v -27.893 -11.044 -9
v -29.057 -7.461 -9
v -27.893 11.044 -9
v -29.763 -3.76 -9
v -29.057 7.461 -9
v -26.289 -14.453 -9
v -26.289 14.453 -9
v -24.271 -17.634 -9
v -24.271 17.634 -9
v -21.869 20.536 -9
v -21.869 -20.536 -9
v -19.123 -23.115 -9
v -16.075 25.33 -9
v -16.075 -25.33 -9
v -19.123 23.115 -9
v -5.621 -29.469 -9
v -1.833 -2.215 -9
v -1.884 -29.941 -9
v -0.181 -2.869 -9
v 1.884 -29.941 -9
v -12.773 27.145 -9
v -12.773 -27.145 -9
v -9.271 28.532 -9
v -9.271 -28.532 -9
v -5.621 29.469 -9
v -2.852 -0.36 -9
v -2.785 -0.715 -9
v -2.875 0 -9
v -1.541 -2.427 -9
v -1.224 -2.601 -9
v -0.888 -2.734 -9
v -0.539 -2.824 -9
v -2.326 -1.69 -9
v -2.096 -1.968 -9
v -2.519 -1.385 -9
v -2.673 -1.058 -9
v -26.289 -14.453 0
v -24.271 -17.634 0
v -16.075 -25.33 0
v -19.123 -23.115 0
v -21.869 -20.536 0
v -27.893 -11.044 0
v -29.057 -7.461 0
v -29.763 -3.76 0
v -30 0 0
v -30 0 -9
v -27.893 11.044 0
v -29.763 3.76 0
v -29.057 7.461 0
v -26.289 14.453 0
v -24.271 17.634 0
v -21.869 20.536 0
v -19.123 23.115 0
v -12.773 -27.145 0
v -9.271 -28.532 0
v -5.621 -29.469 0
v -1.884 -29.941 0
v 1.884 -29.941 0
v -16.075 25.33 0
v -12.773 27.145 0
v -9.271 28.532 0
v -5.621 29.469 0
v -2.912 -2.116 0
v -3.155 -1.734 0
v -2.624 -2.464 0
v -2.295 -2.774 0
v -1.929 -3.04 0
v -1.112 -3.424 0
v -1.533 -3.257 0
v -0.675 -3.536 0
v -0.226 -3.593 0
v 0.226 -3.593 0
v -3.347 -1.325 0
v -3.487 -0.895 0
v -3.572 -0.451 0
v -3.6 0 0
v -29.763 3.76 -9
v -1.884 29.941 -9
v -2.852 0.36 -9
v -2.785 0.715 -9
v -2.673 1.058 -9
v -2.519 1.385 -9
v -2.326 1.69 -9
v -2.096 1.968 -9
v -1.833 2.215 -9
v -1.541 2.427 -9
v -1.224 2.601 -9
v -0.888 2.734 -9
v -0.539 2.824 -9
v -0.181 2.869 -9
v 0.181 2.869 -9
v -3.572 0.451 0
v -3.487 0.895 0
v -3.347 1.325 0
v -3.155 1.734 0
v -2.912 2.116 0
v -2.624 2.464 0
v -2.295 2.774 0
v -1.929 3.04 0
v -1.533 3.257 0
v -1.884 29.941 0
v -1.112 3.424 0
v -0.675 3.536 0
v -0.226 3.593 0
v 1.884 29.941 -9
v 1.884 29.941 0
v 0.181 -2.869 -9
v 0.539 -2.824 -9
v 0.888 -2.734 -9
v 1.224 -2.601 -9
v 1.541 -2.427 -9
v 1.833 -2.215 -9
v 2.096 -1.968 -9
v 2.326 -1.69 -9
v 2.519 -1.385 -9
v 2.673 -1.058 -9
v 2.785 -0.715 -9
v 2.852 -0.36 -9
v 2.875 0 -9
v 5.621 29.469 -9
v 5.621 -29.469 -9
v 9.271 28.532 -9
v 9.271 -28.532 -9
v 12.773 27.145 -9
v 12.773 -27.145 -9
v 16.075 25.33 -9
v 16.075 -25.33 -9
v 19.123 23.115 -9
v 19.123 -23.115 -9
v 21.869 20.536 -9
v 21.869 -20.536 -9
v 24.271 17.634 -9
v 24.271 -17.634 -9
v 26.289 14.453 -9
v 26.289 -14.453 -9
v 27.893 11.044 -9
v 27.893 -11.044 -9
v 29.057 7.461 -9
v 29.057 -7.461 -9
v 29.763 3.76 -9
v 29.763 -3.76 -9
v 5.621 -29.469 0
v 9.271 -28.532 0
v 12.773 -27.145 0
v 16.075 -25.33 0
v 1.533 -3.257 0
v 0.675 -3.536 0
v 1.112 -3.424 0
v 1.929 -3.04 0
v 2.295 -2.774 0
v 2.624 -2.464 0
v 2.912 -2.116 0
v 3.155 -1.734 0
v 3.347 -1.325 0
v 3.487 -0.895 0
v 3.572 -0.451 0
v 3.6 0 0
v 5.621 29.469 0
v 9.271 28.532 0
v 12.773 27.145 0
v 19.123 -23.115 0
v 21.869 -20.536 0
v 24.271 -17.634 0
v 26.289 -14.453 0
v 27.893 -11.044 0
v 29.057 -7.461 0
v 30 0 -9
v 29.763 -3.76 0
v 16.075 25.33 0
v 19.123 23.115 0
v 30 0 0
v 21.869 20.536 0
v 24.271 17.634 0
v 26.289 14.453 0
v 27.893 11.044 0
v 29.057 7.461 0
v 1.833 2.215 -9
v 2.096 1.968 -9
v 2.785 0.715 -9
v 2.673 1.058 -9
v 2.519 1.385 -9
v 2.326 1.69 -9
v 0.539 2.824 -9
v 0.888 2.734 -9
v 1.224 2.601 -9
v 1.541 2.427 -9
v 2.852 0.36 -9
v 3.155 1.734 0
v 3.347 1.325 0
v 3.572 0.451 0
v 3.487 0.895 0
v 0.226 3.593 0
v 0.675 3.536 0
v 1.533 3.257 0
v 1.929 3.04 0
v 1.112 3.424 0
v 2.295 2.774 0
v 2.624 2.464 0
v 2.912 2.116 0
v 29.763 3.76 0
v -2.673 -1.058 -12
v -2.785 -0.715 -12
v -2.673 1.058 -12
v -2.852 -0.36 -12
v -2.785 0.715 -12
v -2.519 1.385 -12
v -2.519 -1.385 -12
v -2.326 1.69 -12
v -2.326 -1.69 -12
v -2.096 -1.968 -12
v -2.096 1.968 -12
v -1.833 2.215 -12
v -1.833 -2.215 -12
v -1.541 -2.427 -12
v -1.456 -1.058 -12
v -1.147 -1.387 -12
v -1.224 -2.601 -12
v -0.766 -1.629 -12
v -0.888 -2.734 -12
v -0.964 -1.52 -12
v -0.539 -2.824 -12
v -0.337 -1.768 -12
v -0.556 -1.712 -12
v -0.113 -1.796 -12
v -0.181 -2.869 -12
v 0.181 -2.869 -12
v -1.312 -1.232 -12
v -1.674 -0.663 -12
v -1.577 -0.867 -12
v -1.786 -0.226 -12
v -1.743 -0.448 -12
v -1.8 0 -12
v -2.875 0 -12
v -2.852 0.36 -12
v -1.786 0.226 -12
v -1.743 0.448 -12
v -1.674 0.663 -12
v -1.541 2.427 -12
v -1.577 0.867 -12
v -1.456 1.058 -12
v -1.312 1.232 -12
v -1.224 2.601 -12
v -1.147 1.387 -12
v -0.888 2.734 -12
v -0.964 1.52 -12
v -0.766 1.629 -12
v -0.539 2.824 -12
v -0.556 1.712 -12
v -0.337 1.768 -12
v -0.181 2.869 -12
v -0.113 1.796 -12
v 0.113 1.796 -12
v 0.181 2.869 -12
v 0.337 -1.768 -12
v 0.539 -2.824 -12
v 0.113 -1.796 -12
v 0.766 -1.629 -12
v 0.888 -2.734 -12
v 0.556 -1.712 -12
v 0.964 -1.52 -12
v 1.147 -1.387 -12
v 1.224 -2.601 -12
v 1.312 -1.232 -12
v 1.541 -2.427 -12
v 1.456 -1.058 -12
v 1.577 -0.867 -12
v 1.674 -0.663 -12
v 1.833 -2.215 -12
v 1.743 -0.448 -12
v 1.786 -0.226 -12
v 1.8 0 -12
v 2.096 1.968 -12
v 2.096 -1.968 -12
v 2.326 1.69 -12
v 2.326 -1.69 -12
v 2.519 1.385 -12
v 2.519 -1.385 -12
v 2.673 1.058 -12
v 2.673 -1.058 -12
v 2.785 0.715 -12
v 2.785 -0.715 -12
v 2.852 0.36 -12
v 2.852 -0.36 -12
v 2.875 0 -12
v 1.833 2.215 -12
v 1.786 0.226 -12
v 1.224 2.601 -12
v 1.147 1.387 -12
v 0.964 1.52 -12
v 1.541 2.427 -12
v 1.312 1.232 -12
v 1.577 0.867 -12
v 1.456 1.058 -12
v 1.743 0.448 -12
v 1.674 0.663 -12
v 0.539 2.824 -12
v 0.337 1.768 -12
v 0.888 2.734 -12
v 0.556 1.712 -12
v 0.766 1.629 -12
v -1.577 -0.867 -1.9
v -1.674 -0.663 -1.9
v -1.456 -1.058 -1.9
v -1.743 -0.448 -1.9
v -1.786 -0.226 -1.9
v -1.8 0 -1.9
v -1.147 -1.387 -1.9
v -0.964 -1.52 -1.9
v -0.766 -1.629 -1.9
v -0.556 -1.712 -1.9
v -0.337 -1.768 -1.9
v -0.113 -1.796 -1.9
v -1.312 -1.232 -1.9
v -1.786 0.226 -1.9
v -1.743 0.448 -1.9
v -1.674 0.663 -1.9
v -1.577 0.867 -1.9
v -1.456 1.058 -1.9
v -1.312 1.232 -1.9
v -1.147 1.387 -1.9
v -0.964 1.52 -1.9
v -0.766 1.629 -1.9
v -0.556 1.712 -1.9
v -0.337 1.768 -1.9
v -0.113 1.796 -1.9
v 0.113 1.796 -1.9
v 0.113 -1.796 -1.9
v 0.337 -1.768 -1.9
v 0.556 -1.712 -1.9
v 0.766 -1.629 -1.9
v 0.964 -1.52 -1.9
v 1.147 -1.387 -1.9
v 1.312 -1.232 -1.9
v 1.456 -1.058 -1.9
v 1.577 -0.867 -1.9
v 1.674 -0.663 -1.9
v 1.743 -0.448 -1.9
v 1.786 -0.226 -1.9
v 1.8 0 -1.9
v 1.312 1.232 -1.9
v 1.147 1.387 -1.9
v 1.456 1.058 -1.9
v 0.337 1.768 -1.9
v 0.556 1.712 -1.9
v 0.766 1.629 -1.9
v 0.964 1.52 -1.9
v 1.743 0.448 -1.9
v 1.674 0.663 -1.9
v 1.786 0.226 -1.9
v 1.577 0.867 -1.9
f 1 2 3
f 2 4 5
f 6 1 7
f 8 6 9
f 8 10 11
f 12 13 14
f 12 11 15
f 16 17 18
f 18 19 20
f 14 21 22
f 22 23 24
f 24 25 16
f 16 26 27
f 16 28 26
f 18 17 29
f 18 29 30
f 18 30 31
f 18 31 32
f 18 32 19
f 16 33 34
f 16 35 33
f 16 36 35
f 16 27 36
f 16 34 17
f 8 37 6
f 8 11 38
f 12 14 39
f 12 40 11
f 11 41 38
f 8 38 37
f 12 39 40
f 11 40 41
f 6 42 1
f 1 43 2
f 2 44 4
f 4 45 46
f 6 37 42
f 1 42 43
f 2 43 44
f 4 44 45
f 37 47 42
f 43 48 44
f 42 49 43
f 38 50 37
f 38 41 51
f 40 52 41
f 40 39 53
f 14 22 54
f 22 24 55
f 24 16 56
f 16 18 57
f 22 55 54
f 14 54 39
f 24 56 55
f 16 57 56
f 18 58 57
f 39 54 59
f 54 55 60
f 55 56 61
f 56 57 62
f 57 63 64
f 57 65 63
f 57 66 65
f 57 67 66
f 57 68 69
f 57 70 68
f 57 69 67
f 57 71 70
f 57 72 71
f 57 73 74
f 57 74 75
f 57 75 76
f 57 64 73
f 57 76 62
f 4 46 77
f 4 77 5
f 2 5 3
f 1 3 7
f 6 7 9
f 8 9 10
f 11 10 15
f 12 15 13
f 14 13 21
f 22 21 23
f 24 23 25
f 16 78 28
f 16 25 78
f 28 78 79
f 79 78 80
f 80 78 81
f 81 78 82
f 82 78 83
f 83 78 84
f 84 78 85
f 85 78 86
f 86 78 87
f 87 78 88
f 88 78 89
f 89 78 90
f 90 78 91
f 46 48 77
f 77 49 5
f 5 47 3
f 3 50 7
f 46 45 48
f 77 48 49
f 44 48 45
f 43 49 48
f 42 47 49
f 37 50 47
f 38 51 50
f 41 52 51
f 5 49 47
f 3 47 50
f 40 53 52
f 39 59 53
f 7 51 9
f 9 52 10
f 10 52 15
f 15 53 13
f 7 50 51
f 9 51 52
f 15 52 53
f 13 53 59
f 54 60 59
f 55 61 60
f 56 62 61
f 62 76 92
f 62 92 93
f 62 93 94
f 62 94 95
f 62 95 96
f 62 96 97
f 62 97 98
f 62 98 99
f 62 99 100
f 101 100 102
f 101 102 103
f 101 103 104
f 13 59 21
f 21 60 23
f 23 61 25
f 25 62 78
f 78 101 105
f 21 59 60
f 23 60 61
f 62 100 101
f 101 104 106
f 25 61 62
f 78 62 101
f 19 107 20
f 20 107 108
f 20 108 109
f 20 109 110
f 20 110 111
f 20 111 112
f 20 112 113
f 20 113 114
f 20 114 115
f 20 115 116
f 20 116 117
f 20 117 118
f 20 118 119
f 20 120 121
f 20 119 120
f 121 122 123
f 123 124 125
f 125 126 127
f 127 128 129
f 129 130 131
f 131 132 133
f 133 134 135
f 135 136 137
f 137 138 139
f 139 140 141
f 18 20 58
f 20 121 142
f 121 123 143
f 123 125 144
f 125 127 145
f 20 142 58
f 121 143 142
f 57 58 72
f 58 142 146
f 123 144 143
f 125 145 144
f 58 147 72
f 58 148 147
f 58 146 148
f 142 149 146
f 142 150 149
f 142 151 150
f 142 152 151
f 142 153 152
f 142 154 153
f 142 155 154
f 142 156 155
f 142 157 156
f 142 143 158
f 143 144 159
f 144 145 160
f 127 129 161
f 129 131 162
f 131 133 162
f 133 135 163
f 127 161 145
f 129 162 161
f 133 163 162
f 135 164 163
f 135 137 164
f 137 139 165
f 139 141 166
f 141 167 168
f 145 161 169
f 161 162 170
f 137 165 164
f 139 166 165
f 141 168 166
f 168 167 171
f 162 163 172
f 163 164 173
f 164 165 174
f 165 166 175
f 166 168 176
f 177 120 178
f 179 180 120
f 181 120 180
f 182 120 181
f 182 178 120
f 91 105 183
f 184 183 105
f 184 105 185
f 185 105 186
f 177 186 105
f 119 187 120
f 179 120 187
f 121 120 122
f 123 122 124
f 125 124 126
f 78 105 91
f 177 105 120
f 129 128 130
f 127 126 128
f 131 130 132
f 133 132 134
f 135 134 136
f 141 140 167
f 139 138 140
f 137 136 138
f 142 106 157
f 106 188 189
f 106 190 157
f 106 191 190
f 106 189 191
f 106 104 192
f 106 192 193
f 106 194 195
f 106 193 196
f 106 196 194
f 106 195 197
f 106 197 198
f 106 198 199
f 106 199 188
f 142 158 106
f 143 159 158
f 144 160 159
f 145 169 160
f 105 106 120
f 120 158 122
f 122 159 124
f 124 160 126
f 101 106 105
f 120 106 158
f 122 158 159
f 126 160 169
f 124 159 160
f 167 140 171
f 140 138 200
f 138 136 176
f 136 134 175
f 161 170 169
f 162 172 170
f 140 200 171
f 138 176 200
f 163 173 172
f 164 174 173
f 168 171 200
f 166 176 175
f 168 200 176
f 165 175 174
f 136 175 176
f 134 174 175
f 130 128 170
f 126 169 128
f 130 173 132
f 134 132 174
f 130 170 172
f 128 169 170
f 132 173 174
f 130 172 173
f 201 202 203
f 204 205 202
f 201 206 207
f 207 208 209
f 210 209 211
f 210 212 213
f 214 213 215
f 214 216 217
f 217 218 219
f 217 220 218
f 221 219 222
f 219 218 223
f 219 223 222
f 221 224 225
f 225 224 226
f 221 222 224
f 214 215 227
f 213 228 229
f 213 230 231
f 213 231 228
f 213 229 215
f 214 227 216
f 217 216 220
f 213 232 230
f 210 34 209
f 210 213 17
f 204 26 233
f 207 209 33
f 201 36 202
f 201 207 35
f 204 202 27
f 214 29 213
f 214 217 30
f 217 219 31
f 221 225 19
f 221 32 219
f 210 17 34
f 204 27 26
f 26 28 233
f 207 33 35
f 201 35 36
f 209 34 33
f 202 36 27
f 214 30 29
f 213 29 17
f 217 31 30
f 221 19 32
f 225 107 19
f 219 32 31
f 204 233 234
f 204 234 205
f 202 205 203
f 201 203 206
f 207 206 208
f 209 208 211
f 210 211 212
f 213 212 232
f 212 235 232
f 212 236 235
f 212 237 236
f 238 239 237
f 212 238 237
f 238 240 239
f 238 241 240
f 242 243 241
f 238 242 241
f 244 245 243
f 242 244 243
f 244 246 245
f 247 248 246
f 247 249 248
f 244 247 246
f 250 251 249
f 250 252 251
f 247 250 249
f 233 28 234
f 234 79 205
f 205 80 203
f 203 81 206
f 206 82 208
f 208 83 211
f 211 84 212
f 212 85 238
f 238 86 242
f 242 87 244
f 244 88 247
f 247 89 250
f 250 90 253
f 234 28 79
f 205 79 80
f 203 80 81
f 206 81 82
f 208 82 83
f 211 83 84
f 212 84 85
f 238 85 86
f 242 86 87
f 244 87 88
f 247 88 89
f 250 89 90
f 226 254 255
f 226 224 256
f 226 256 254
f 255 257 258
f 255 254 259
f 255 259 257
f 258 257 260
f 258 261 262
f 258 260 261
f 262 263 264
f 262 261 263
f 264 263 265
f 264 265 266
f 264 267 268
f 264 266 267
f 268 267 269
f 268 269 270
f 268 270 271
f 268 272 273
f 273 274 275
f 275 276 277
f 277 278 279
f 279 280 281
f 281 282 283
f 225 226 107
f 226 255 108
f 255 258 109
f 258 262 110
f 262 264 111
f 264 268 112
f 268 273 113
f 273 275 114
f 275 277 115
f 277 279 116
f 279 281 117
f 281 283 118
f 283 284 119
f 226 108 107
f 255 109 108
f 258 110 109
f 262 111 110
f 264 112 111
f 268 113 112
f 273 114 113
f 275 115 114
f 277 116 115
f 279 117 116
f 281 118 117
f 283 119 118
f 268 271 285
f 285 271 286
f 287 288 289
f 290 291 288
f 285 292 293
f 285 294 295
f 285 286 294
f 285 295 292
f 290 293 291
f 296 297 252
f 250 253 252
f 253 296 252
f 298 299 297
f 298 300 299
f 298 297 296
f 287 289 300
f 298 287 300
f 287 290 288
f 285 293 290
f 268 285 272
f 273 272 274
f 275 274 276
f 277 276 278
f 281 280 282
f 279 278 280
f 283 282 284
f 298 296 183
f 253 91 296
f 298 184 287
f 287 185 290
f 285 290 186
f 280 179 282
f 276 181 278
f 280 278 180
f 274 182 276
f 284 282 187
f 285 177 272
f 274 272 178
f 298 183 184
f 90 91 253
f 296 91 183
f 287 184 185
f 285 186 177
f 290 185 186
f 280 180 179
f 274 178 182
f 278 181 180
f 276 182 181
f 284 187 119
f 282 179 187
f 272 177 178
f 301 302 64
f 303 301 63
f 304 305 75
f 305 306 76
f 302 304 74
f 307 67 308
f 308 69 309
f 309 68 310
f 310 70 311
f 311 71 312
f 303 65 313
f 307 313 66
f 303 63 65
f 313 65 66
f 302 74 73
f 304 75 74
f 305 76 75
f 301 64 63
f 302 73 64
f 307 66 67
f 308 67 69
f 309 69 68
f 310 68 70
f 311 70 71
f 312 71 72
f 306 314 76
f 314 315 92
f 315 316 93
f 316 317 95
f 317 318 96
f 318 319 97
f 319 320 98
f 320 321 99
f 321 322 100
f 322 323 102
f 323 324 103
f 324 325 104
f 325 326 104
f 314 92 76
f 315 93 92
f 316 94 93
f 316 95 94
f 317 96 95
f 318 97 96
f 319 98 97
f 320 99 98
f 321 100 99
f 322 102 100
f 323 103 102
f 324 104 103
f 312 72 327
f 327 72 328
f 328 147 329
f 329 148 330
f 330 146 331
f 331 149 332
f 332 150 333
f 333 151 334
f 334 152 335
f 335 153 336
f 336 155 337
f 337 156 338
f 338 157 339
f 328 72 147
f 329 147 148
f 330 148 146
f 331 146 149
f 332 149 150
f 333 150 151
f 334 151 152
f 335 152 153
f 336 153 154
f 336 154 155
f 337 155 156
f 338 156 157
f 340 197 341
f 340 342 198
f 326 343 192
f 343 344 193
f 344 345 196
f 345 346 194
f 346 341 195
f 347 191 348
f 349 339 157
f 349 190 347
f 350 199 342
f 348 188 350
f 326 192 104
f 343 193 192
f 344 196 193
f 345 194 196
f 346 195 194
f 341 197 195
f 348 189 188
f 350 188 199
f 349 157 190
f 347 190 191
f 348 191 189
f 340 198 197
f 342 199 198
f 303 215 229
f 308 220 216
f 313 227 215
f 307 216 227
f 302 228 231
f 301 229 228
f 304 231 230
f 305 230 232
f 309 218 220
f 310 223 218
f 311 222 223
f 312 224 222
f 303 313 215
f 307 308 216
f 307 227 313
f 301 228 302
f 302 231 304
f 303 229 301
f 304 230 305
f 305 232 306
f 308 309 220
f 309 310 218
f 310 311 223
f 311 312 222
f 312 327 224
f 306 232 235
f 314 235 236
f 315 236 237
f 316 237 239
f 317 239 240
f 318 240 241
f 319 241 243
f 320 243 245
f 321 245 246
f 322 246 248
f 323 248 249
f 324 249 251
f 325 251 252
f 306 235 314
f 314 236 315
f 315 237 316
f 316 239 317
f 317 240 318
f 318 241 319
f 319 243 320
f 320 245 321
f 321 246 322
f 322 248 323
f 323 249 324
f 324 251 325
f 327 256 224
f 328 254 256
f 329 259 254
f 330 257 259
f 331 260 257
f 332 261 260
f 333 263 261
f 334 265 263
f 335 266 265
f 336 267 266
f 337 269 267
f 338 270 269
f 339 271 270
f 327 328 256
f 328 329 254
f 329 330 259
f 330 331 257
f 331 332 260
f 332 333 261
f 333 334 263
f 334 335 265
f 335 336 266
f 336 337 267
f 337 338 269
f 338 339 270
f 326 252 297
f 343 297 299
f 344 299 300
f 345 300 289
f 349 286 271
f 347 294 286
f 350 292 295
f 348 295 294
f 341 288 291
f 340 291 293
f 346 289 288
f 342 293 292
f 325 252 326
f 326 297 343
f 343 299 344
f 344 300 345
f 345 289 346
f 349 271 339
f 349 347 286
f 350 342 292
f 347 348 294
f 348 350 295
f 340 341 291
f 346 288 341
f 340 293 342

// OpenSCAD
$fn = 50;


difference() {
	union() {
		translate(v = [0, 0, -9.0000000000]) {
			cylinder(h = 9, r = 30.0000000000);
		}
		#translate(v = [0, 0, -12.0000000000]) {
			cylinder(h = 12, r = 2.8750000000);
		}
	}
	union() {
		translate(v = [0, 0, 0]) {
			rotate(a = [0, 0, 0]) {
				difference() {
					union() {
						translate(v = [0, 0, -12.0000000000]) {
							cylinder(h = 12, r = 1.5000000000);
						}
						translate(v = [0, 0, -1.9000000000]) {
							cylinder(h = 1.9000000000, r1 = 1.8000000000, r2 = 3.6000000000);
						}
						translate(v = [0, 0, -12.0000000000]) {
							cylinder(h = 12, r = 1.8000000000);
						}
						translate(v = [0, 0, -12.0000000000]) {
							cylinder(h = 12, r = 1.5000000000);
						}
					}
					union();
				}
			}
		}
	}
}
